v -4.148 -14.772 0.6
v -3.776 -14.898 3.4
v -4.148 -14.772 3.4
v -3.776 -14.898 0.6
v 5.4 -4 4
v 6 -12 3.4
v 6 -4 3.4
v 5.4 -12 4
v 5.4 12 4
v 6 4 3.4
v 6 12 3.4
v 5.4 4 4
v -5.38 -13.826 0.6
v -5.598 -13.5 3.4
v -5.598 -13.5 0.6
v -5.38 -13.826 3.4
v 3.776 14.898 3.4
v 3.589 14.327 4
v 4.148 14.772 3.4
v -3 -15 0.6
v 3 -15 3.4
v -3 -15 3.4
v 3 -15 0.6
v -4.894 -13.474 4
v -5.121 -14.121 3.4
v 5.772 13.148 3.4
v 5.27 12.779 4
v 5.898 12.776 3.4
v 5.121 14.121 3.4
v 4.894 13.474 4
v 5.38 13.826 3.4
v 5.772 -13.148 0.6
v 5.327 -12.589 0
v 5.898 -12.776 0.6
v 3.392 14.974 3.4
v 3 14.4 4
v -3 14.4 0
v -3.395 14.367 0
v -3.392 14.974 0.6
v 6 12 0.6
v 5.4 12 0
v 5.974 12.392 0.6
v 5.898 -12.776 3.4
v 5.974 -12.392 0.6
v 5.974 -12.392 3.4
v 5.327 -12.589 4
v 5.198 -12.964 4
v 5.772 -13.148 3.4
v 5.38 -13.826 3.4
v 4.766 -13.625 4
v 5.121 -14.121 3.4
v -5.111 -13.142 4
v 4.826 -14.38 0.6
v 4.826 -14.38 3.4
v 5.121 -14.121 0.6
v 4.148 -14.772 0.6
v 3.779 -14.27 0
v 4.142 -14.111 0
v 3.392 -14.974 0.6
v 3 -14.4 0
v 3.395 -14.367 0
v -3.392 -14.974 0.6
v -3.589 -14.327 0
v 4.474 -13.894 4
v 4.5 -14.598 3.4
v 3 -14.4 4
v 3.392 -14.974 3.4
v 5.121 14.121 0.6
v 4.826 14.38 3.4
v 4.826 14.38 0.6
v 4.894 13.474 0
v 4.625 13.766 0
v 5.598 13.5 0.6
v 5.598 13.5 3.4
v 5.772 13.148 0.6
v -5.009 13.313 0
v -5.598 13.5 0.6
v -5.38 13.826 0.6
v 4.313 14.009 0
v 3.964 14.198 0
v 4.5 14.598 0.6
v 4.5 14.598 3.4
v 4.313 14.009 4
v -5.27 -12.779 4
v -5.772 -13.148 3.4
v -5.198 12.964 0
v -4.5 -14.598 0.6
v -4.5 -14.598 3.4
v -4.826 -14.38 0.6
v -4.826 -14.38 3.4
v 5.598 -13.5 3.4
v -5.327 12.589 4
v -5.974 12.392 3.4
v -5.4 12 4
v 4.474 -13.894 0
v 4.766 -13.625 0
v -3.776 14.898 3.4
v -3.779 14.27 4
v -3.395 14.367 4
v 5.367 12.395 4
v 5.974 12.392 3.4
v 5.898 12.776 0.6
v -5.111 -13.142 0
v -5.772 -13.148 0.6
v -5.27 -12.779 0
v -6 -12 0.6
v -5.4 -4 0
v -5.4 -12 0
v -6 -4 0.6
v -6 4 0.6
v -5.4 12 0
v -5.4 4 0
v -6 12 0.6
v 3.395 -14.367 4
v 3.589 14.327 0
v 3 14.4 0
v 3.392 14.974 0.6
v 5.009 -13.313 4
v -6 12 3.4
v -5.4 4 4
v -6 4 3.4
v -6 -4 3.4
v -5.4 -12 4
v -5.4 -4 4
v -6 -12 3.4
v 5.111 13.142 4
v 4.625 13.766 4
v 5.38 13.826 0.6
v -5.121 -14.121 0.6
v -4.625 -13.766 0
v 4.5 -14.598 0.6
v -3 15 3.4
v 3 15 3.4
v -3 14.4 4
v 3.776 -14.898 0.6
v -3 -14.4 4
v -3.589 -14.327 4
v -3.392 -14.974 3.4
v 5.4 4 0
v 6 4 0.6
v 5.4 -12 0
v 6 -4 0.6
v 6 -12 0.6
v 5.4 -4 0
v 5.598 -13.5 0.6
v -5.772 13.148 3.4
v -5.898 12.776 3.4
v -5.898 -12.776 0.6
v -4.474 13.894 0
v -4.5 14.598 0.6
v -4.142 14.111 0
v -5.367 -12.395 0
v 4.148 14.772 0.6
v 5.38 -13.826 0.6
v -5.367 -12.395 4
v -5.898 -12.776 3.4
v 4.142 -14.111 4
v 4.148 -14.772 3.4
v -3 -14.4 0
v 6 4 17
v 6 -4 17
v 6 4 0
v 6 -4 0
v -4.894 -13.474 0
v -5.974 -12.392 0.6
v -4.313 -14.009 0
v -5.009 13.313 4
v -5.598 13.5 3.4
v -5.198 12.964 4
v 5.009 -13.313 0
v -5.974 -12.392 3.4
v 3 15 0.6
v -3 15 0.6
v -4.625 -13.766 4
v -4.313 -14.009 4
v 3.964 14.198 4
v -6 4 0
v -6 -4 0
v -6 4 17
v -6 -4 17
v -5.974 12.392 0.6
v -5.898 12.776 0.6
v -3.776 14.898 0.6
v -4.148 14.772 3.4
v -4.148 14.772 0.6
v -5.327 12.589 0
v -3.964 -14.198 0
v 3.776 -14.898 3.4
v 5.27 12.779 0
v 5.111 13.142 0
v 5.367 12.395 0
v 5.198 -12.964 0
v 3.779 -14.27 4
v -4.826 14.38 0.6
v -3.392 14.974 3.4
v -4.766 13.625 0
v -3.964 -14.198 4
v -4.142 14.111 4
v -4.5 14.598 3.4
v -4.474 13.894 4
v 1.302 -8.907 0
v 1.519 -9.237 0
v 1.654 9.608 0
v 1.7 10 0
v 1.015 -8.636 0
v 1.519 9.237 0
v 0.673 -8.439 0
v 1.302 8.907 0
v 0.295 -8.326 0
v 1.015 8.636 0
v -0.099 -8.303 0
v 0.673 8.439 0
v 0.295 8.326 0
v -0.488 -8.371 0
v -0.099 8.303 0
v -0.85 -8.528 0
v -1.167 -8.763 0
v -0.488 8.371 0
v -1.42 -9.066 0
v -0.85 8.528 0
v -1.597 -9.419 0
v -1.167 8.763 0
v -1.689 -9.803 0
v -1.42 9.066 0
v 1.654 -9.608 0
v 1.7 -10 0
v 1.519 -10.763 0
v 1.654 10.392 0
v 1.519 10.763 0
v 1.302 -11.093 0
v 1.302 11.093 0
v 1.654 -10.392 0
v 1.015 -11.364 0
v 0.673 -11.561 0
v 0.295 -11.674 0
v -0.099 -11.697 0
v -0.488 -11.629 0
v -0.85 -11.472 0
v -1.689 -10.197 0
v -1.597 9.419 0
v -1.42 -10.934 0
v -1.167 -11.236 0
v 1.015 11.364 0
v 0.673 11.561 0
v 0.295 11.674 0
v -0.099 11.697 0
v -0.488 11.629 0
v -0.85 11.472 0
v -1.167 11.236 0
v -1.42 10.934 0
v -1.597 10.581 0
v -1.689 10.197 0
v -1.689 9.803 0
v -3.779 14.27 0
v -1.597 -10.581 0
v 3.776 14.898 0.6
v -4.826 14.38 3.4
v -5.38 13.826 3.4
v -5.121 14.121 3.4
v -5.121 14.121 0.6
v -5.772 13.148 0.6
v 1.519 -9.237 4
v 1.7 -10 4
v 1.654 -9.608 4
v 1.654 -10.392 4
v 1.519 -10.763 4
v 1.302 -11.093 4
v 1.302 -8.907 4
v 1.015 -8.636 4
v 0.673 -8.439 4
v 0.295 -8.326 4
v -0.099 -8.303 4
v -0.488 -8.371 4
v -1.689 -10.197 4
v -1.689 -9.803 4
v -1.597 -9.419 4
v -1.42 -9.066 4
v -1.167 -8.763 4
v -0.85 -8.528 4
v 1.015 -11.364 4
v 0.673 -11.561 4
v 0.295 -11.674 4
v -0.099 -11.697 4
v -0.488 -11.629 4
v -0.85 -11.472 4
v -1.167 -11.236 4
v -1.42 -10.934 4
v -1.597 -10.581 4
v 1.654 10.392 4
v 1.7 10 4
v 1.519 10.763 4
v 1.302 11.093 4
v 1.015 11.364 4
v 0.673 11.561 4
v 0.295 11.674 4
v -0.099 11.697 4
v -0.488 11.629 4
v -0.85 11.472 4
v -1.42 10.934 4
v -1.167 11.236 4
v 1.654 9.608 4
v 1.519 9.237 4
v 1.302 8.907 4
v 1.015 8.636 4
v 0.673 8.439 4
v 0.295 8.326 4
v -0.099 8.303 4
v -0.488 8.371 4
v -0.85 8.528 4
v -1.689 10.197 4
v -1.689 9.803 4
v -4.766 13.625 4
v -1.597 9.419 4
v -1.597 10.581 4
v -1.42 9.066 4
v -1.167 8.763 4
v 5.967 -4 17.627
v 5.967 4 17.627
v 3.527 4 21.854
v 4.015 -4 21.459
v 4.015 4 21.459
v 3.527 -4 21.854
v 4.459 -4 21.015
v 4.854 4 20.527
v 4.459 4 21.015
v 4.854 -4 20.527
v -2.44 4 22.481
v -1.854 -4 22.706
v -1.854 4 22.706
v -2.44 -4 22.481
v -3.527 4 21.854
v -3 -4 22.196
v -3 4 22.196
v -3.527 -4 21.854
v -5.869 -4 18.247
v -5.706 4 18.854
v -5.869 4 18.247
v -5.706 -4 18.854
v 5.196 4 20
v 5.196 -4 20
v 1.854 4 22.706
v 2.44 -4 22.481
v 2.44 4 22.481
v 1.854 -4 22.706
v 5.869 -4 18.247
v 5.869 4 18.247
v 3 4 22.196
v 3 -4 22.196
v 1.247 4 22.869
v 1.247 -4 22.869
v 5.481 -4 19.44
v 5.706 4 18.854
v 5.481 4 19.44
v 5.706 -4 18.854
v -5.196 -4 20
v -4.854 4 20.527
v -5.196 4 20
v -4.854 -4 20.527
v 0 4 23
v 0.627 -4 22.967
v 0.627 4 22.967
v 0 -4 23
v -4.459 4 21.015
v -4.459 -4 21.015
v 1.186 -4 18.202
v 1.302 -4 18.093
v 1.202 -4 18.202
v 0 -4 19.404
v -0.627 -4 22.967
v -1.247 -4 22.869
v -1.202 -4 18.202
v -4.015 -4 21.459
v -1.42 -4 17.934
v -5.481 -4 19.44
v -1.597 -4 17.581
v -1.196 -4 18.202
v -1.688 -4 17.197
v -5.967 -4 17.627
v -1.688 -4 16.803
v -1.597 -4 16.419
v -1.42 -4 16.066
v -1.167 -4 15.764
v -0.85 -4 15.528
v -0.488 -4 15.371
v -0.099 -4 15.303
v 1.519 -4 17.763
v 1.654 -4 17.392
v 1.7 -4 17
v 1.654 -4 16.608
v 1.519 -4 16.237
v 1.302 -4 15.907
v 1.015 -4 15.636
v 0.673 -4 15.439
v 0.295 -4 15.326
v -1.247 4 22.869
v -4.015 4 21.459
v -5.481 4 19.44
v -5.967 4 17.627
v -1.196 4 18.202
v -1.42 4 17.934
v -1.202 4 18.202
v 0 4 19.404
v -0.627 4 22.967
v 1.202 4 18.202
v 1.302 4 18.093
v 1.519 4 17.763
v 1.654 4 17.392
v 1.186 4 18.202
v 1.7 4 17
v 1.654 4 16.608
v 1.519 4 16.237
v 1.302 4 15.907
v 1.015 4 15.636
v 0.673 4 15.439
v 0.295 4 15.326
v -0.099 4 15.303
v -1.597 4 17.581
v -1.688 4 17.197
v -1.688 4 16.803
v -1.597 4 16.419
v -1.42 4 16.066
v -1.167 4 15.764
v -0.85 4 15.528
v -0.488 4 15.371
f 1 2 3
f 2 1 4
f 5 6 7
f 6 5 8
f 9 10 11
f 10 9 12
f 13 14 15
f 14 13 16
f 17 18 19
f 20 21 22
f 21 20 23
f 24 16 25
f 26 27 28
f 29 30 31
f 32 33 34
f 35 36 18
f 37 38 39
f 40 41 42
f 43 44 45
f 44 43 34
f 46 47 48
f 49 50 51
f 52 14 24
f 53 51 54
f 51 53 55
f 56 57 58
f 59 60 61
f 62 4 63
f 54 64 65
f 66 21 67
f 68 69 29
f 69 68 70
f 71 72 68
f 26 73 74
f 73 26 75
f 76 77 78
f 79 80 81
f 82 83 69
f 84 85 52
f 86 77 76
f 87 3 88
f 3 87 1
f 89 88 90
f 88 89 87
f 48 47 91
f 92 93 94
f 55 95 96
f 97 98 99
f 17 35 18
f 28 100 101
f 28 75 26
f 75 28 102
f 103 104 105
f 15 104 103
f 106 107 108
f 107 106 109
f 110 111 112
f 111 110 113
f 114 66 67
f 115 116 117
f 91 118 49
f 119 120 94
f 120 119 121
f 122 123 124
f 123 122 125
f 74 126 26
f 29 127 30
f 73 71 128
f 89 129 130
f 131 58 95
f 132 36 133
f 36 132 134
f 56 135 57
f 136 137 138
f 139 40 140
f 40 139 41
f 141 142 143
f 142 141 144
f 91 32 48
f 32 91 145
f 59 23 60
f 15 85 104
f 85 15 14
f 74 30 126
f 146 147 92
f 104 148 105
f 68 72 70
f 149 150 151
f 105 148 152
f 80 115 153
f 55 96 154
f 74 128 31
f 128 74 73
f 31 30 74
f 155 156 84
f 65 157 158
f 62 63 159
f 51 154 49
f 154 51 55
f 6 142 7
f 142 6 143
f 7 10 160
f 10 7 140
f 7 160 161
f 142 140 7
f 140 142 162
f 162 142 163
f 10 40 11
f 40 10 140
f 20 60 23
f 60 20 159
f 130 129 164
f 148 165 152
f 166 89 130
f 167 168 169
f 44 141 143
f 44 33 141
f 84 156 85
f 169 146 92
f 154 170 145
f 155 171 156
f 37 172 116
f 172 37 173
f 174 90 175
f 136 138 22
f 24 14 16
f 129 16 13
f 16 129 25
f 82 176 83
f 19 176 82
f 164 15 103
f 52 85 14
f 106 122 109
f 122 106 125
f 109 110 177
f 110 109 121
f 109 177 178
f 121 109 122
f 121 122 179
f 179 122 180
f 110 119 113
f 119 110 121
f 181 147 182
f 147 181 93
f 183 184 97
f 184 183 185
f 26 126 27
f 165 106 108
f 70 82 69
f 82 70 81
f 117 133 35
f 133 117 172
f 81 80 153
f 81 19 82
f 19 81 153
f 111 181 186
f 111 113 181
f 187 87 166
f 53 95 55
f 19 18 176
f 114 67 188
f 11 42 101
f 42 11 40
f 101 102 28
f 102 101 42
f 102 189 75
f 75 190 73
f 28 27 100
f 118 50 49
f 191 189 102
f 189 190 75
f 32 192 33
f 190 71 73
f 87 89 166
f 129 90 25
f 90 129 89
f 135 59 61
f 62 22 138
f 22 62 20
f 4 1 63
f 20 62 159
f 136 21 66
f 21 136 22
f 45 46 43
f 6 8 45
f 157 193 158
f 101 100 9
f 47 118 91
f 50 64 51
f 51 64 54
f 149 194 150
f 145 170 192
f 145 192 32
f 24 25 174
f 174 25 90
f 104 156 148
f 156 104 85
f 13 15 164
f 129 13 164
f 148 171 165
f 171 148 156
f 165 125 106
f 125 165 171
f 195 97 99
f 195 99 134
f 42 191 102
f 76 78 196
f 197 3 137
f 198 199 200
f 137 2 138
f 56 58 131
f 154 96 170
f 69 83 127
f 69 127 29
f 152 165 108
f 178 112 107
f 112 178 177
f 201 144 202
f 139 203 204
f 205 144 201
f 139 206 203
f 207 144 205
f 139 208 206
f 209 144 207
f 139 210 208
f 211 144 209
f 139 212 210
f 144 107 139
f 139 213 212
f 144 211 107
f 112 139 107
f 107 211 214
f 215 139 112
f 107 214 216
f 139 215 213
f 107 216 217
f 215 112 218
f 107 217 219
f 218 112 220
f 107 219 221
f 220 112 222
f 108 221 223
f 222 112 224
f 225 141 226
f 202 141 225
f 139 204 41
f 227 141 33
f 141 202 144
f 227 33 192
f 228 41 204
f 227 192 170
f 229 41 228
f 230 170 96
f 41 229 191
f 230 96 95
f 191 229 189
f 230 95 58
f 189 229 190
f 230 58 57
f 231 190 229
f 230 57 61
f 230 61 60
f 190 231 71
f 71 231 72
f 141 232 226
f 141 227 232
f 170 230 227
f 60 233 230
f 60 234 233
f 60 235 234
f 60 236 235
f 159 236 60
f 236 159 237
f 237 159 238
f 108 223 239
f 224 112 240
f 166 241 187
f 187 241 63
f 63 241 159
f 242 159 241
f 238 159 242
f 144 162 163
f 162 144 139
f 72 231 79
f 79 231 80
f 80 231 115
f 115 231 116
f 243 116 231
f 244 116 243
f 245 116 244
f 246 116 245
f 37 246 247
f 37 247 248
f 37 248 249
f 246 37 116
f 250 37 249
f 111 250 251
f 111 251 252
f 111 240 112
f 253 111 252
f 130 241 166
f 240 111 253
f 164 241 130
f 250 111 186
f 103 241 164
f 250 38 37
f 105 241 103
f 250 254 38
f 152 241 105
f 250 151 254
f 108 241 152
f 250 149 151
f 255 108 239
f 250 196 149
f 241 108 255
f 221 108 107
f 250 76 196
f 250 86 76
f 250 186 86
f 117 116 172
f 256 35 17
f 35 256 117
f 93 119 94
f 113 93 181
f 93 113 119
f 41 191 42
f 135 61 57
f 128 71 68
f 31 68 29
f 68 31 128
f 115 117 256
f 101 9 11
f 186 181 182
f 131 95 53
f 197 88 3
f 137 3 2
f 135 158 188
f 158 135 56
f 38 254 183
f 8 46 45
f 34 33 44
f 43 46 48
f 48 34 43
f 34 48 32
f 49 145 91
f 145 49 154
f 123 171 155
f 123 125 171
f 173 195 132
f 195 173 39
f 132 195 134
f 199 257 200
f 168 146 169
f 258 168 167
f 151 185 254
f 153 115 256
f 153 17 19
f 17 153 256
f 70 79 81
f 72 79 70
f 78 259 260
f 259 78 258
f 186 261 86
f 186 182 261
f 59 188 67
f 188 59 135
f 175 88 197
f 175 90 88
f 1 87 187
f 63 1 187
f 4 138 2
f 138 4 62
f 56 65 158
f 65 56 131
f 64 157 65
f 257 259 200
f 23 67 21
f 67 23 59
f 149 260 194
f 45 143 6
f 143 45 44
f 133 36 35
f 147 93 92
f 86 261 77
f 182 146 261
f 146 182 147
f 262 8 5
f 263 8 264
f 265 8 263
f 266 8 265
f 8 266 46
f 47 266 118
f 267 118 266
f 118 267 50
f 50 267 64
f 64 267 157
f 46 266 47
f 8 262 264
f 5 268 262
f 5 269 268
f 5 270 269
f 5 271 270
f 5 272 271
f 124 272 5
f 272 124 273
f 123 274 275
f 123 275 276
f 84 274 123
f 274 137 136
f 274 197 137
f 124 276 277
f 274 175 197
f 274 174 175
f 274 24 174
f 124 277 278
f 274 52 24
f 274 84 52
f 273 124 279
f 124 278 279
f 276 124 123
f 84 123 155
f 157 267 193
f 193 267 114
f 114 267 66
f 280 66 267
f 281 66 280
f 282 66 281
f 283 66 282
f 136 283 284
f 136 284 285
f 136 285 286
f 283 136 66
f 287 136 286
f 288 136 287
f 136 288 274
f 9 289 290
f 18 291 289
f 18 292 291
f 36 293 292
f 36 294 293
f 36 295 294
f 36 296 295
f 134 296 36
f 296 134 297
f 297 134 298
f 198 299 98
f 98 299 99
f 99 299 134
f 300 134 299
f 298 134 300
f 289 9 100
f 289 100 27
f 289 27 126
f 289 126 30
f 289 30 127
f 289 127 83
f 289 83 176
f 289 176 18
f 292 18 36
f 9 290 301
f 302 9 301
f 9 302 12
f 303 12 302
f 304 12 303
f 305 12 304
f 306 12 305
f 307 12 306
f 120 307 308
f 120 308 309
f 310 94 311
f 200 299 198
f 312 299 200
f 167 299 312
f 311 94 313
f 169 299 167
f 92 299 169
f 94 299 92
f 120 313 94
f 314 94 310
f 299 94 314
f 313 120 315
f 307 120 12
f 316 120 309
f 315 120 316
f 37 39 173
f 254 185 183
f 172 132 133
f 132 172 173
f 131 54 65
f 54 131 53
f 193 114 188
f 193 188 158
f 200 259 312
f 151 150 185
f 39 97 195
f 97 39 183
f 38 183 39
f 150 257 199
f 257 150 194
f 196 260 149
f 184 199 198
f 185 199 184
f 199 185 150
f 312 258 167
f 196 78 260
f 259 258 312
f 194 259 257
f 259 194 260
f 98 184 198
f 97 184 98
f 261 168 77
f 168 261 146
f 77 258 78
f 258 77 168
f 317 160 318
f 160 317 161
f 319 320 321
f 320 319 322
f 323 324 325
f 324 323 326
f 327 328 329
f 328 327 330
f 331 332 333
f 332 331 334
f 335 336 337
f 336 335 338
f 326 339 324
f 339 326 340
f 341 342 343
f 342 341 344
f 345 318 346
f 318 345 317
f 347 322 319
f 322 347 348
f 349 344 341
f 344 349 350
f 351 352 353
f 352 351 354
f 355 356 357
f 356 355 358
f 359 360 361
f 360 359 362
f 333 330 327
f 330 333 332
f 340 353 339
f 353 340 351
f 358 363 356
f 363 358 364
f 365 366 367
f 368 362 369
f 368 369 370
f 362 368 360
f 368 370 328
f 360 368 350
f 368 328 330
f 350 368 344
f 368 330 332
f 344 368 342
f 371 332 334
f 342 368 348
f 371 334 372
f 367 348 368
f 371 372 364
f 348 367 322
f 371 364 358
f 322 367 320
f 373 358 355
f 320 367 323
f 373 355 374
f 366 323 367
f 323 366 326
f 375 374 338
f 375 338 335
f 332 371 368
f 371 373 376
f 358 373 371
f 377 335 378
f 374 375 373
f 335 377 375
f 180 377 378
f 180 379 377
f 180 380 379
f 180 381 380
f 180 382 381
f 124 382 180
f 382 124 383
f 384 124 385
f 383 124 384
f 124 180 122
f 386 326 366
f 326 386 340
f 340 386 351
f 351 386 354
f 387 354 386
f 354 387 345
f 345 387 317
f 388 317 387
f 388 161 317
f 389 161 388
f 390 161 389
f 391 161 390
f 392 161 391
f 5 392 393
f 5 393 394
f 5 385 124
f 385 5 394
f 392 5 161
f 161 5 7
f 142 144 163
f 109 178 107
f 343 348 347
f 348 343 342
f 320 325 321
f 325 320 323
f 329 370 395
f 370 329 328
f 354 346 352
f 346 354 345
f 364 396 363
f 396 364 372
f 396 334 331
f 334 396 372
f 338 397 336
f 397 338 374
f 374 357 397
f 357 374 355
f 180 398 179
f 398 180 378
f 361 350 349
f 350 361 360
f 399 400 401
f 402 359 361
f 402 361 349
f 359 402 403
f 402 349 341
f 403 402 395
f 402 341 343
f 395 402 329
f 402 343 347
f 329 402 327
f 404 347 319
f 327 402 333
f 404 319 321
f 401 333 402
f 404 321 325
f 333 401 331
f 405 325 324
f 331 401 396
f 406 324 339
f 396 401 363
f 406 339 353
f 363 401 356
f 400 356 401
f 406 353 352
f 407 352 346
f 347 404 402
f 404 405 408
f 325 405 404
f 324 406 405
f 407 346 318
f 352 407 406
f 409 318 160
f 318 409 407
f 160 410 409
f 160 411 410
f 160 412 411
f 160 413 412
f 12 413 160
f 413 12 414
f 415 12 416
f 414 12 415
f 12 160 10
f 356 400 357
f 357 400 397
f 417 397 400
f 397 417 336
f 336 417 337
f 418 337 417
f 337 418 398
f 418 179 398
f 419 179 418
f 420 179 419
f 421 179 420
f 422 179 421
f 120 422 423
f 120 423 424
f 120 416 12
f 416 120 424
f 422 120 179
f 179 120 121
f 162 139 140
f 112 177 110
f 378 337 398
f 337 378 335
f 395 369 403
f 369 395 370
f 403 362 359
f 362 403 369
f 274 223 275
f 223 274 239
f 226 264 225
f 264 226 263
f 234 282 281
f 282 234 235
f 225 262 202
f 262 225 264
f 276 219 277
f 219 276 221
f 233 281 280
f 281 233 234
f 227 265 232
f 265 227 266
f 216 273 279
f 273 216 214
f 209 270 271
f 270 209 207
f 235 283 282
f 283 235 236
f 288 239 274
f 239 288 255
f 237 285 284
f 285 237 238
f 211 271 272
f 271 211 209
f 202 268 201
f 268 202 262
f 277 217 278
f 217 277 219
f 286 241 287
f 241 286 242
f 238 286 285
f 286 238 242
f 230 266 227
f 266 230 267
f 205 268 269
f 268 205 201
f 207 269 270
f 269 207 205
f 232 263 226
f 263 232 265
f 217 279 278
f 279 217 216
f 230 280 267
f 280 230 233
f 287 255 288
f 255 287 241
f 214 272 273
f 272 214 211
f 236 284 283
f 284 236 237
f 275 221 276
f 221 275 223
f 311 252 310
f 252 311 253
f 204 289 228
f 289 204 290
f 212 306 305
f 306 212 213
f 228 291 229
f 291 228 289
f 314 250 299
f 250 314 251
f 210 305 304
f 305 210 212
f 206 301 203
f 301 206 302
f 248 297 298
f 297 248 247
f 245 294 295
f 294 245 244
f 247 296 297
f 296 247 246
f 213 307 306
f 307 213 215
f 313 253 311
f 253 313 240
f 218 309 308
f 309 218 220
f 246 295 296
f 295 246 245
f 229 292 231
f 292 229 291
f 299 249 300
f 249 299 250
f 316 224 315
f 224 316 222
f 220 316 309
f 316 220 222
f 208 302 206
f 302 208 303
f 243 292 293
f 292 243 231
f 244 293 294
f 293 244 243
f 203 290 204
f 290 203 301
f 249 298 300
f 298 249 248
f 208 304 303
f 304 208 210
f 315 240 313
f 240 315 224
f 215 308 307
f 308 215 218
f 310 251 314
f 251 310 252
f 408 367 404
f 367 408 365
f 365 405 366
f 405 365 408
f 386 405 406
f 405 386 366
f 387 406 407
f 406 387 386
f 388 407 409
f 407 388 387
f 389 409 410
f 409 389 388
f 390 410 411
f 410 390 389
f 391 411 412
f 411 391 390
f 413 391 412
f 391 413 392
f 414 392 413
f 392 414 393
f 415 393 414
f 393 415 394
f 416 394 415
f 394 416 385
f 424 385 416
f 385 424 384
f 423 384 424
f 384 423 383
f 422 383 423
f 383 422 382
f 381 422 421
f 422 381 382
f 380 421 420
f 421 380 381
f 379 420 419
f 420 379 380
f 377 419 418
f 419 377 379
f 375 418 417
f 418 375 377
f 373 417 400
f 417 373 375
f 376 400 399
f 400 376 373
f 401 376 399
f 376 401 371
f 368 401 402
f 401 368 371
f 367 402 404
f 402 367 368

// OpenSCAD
// file: ../stem_core.scad
// =====================================================================
//  stem_core.scad — shared geometry helpers for every STEM_KIT part.
// =====================================================================
include <../PARAMETERS/config.scad>
// =====================================================================

// ---------- rounded / chamfered prisms --------------------------------

// Rounded rectangle (2D), centred.
module rrect(size, r) {
    rr = min(r, min(size[0], size[1]) / 2 - 0.01);
    offset(r = rr) square([size[0] - 2 * rr, size[1] - 2 * rr], center = true);
}

// Box with rounded vertical edges, chamfered bottom edge (elephant-foot
// relief) and rounded-ish (chamfered) top edge. Sits on z = 0, centred XY.
module rbox(size, r = 2, top = edge_r, bottom = chamfer) {
    h = size[2];
    hull() {
        linear_extrude(0.01) rrect([size[0] - 2 * bottom, size[1] - 2 * bottom], max(r - bottom, 0.1));
        translate([0, 0, bottom]) linear_extrude(h - bottom - top) rrect([size[0], size[1]], r);
        translate([0, 0, h - 0.01]) linear_extrude(0.01) rrect([size[0] - 2 * top, size[1] - 2 * top], max(r - top, 0.1));
    }
}

// Cylinder with chamfered/rounded top and bottom edges (safe hubs, knobs).
module rcyl(d, h, top = edge_r, bottom = chamfer) {
    rotate_extrude() polygon([
        [0, 0], [d / 2 - bottom, 0], [d / 2, bottom],
        [d / 2, h - top], [d / 2 - top, h], [0, h]
    ]);
}

// Stadium (slot / rounded bar) 2D between two points on the X axis.
module stadium2d(len, w) {
    hull() { circle(d = w); translate([len, 0]) circle(d = w); }
}

// ---------- holes ------------------------------------------------------

// Vertical through hole with small top/bottom chamfers.
module vhole(d = grid_hole_d, h = 50, ch = 0.4) {
    translate([0, 0, -h / 2]) cylinder(d = d, h = h);
}

// Horizontal hole along +Y, printable without supports (teardrop tip up).
module teardrop_y(d, len, center = true) {
    translate([0, center ? -len / 2 : 0, 0]) rotate([-90, 0, 0])
        linear_extrude(len) teardrop2d(d);
}
module teardrop_x(d, len, center = true) {
    translate([center ? -len / 2 : 0, 0, 0]) rotate([0, 90, 0]) rotate([0, 0, -90])
        linear_extrude(len) teardrop2d(d);
}
// 2D teardrop: circle + 45° roof pointing "up" in the final part (+Z).
// After rotate([-90,0,0]) local +Y becomes -Z, so the roof points to -Y here.
module teardrop2d(d) {
    r = d / 2;
    union() {
        circle(d = d);
        polygon([[-r * sqrt(2) / 2, -r * sqrt(2) / 2], [0, -r * sqrt(2)], [r * sqrt(2) / 2, -r * sqrt(2) / 2]]);
    }
}

// Hex nut pocket (flat sides parallel to X), opening at z = 0 going +Z.
module nut_pocket(depth = nut_pocket_depth, af = nut_pocket_af) {
    cylinder(d = af / cos(30), h = depth, $fn = 6);
}

// Side-entry nut slot: nut plane is XY, slot opens toward +dir (X).
// Centred on the screw axis (Z), slot height nut_slot_t, runs out `len`.
module nut_slot_x(len = 10, af = nut_pocket_af, t = nut_slot_t) {
    translate([0, 0, -t / 2]) hull() {
        cylinder(d = af / cos(30), h = t, $fn = 6);
        translate([len, 0, 0]) cylinder(d = af / cos(30), h = t, $fn = 6);
    }
}

// Counterbored clearance hole from top surface at height `top` downward.
module cbore(top, depth, d = counterbore_d) {
    translate([0, 0, top - depth]) cylinder(d = d, h = depth + 20);
    translate([0, 0, -20]) cylinder(d = grid_hole_d, h = top + 40);
}

// Grid of vertical holes: nx x ny, pitch grid_pitch, first hole centred
// at `origin` (XY). Used by every plate.
module grid_holes(nx, ny, origin = [0, 0], h = 100, d = grid_hole_d) {
    for (i = [0 : nx - 1], j = [0 : ny - 1])
        translate([origin[0] + i * grid_pitch, origin[1] + j * grid_pitch, 0]) vhole(d, h);
}

// Slot (for adjustable mounting) along X, length = travel.
module slot_x(travel, d = grid_hole_d, h = 100) {
    translate([-travel / 2, 0, -h / 2]) linear_extrude(h) stadium2d(travel, d);
}

// ---------- shaft bores ------------------------------------------------

// 2D bore profile: round, or D if shaft_flat > 0.
module bore2d(d) {
    if (shaft_flat > 0)
        intersection() { circle(d = d); translate([-d, -d / 2]) square([2 * d, d - shaft_flat + (d - shaft_diameter) / 2]); }
    else circle(d = d);
}

// Standard HUB: cylinder hub_d x hub_h standing on z = z0, with bore,
// radial M3 set screw at mid height and a captive-nut slot from the top.
// Call inside difference() for the cut-outs: hub_body()/hub_cuts().
module hub_body(z0, d = hub_d, h = hub_h) {
    translate([0, 0, z0]) rcyl(d, h, top = 0.8, bottom = 0);
}
module hub_cuts(z0, total_h, d = hub_d, h = hub_h, bore = shaft_fixed_bore, set_screw = true, screw_angle = 0) {
    // bore through everything
    translate([0, 0, -1]) linear_extrude(total_h + 2) bore2d(bore);
    // entry chamfer on bore
    translate([0, 0, total_h - 0.6]) cylinder(d1 = bore, d2 = bore + 1.2, h = 0.61);
    translate([0, 0, -0.01]) cylinder(d1 = bore + 1.2, d2 = bore, h = 0.6);
    if (set_screw) rotate([0, 0, screw_angle]) {
        zs = z0 + h / 2;
        // radial screw hole (teardrop, prints without support)
        translate([0, 0, zs]) teardrop_x(screw_clear_d, d, center = false);
        // captive nut slot, entered from the hub top face
        nr = bore / 2 + (d / 2 - bore / 2) / 2;       // radial position of nut
        translate([nr - nut_slot_t / 2, -nut_pocket_af / 2, zs - nut_pocket_af / cos(30) / 2 - 0.1])
            cube([nut_slot_t, nut_pocket_af, total_h + 10]);   // open to the hub top face
    }
}

// ---------- labels -----------------------------------------------------

// Engrave text into a top surface at height z (depth 0.6 = 3 layers).
module engrave(txt, size = 5, z = 0, depth = 0.6, halign = "center") {
    translate([0, 0, z - depth]) linear_extrude(depth + 1)
        text(txt, size = size, font = "Liberation Sans:style=Bold", halign = halign, valign = "center");
}

// ---------- misc -------------------------------------------------------

function grid_snap(v) = ceil(v / grid_pitch) * grid_pitch;
// file: ../../PARAMETERS/config.scad
// =====================================================================
//  STEM_KIT — CENTRAL PARAMETER FILE  ("ForgeGrid" mechanical standard)
// ---------------------------------------------------------------------
//  Every part in the library includes this file. Change a value here,
//  run `python3 tools/build.py`, and the whole library regenerates.
//  All dimensions in millimetres.
// =====================================================================

// ---------------------------------------------------------------------
// 1. PRINTER / PROCESS
// ---------------------------------------------------------------------
nozzle          = 0.4;
layer_height    = 0.2;
tolerance       = 0.2;    // sliding clearance per side (tune with STEM_TOLERANCE_TEST)
press_allow     = 0.05;   // extra for press fits (bores that should grip)
min_wall        = 1.6;    // never go below this
wall_thickness  = 2.4;    // preferred wall (6 perimeters @ 0.4)
edge_r          = 1.0;    // rounding of exposed edges (child safety)
chamfer         = 0.6;    // bottom-edge chamfer (elephant-foot relief)

$fa = 6;                  // facet angle
$fs = 0.4;                // facet size

// ---------------------------------------------------------------------
// 2. GRID  (the heart of the ecosystem)
// ---------------------------------------------------------------------
//  Holes sit on a 10 mm lattice, 5 mm in from every plate edge, so
//  plates placed side by side keep one continuous lattice.
grid_pitch            = 10;
plate_size            = 100;   // universal base plate (square)
plate_thickness       = 6;     // base plates, rails, chassis
foot_thickness        = 4;     // flange / foot of every mount
//  => standard joint: 4 mm foot + 6 mm plate = M3 x 10 screw, nut in
//     the hex pocket under the plate. One screw length does 90 % of joints.

// ---------------------------------------------------------------------
// 3. FASTENERS (M3 everywhere: one screwdriver, one nut)
// ---------------------------------------------------------------------
screw_size            = 3;
screw_clear_d         = 3.4;   // clearance hole (also the grid hole)
grid_hole_d           = screw_clear_d;
screw_tap_d           = 2.6;   // hole a screw self-taps into
screw_head_d          = 5.7;   // ISO 7380 BUTTON head = kit standard (low, rounded, child-safe)
screw_head_h          = 1.65;
counterbore_d         = 6.4;
nut_af                = 5.5;   // M3 nut across flats
nut_thick             = 2.4;
nut_pocket_af         = nut_af + 0.35;
nut_pocket_depth      = 3.0;   // pocket under plates (nut sits flush)
nut_slot_t            = nut_thick + 0.4;  // side-entry slot thickness
set_screw_len         = 6;     // M3 x 6 grub screw for hubs

// ---------------------------------------------------------------------
// 4. SHAFTS
// ---------------------------------------------------------------------
//  Default: 3 mm steel rod (silver steel / stainless). Printed shafts
//  are provided for light-duty use. Alternative systems: set
//  shaft_diameter = 4 or 5 and rebuild.
shaft_diameter        = 3;
shaft_flat            = 0;     // >0 : D-shaft, flat depth (e.g. 0.5)
shaft_fixed_bore      = shaft_diameter + 0.15;  // hub bore (set-screw locked)
shaft_free_bore       = shaft_diameter + 0.4;   // free-spinning bore / bushing
shaft_lengths         = [40, 60, 80, 100, 120];

//  Horizontal shafts: all pillow blocks, motor mounts and axle mounts
//  put their axis at this height above the surface they are bolted to,
//  so any two of them on the grid are automatically coaxial/parallel.
axis_height           = 17;
axis_height_high      = 37;    // = axis_height + 2 pitches (pulleys, big wheels)

// ---------------------------------------------------------------------
// 5. BEARINGS
// ---------------------------------------------------------------------
bearing_size          = [5, 16, 5];   // 625 : bore, OD, width (default housing)
bearing_small         = [3, 10, 4];   // 623 : fits 3 mm shafts via adapter ring
bearing_pocket_d      = bearing_size[1] + 0.15;

// ---------------------------------------------------------------------
// 6. GEARS
// ---------------------------------------------------------------------
//  Module 2 + tooth counts that are multiples of 10  =>  centre distance
//  = (z1+z2) mm is ALWAYS a multiple of 10  =>  ANY two gears mesh when
//  their shafts sit in grid holes. (3-4-5 diagonals also work: 50 mm.)
gear_module           = 2;
gear_pressure_angle   = 20;
gear_width            = 6;
gear_backlash         = 0.30;  // total circular backlash per mesh
gear_clearance_k      = 0.25;  // root clearance = k * module
gear_teeth_set        = [10, 20, 30, 40];
//  Gearbox frame: two frame plates, outer faces 60 mm apart (on grid),
//  48 mm gap = three gear levels (A, M, B).
frame_gap             = 48;
hub_d                 = 14;
hub_h                 = 7;

// ---------------------------------------------------------------------
// 7. WHEELS / PULLEYS
// ---------------------------------------------------------------------
wheel_diameter        = 60;
wheel_width           = 10;
axle_diameter         = shaft_diameter;
oring_cs              = 3.0;    // O-ring cross-section used as tyre / belt
belt_cs               = 2.5;    // O-ring / round-belt cord for pulleys
pulley_sizes          = [20, 40, 60];  // effective (belt-line) diameters

// ---------------------------------------------------------------------
// 8. MOTORS (130-size toy / solar motor is the default)
// ---------------------------------------------------------------------
motor_size            = [20.2, 15.2, 25.2]; // body dia, across-flats, length
motor_d               = motor_size[0];
motor_flat            = motor_size[1];
motor_len             = motor_size[2];
motor_boss_d          = 6.2;
motor_boss_h          = 1.6;
motor_shaft_d         = 2.0;
motor_shaft_len       = 8.5;   // beyond boss
motor_shaft_bore      = 1.9;   // press fit onto 2 mm motor shaft

// ---------------------------------------------------------------------
// 9. SOLAR PANEL (bought, not printed) — frame is parametric
// ---------------------------------------------------------------------
solar_panel_size      = [110, 69, 3.0];  // 5 V 1 W epoxy panel (common)
solar_panel_clear     = 0.6;

// ---------------------------------------------------------------------
// 10. ELECTRONICS
// ---------------------------------------------------------------------
mounting_hole_spacing = grid_pitch;   // everything bolts to the grid
electronics_slot_w    = screw_clear_d;
led_hole_d            = 5.1;
buzzer_hole_d         = 12.2;

// ---------------------------------------------------------------------
// 11. SAFETY LIMITS (checked by tools/qc.py)
// ---------------------------------------------------------------------
max_part_voltage      = 12;    // nothing in this kit uses more
min_rim_thickness     = 2.0;   // blades/links: no edge thinner than this
finger_gap_max        = 6;     // guard openings smaller than a child's finger
// main file
// =====================================================================
//  PART: axle mount — COMMON/mounts
//  Low-cost plain-bore pillow block for 3 mm axles (vehicles, idlers).
//  Axis `h` above the surface over a grid line; screws at (0, ±10).
//  slot > 0 turns the holes into slots across the shaft (X) so the shaft
//  can be slid sideways — belt tensioning, or deliberately bad gear mesh
//  experiments.
//  Print: standing on its foot. No supports (teardrop bore).
// =====================================================================
include <../../PARAMETERS/config.scad>
use <../stem_core.scad>

axle_h = axis_height;
axle_slot = 0;
axle_mount(axle_h, axle_slot);

module axle_mount(h = axis_height, slot = 0) {
    W  = 12;              // upright width (X)
    th = 8;               // upright thickness (Y) = bushing length
    t  = foot_thickness;
    fw = W + slot;
    difference() {
        union() {
            rbox([fw, 3 * grid_pitch, t], r = 3, top = 0.6);
            translate([0, th / 2, 0]) rotate([90, 0, 0]) linear_extrude(th)
                hull() {
                    translate([-W / 2 - (h > 25 ? 4 : 0), 0]) square([W + (h > 25 ? 8 : 0), 1]);
                    translate([0, h]) circle(d = W);
                }
        }
        translate([0, 0, h]) teardrop_y(shaft_free_bore, 30);
        for (y = [-grid_pitch, grid_pitch]) translate([0, y, 0])
            if (slot > 0) slot_x(slot, grid_hole_d, 20); else vhole(grid_hole_d, 20);
        // slot travel marks (every 5 mm) engraved on the foot
        if (slot > 0) for (k = [-floor(slot / 10) : floor(slot / 10)])
            translate([k * 5, -1.5 * grid_pitch + 1.5, t - 0.4]) cube([0.6, 2.5, 1], center = true);
    }
}
